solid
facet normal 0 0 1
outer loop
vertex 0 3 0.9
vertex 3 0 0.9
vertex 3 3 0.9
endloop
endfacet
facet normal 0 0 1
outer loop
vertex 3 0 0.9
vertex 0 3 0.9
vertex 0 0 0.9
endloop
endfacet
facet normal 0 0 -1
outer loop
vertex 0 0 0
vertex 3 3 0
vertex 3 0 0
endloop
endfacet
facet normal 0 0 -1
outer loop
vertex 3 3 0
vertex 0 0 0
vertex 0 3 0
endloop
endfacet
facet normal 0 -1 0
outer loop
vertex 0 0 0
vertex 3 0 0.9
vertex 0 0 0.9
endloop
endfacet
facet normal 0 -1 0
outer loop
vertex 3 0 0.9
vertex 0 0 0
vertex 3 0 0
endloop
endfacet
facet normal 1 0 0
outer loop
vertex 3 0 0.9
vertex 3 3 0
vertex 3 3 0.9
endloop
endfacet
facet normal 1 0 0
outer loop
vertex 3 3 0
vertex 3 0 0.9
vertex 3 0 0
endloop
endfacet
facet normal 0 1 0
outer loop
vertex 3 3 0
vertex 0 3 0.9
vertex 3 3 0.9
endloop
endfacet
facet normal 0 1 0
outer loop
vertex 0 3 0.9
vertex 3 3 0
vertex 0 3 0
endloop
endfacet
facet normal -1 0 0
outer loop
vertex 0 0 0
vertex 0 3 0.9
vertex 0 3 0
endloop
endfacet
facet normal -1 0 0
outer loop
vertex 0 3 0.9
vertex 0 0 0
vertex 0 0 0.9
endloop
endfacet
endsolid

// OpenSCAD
/* Warning, this is a very basic generator with a lot of approximation 
input data : [QFN, 2RX, 3x3x0.9mm, 16, , A, C04-00197A]
generated by com.zoubworld.electronics.cad.model3d.Basic
Date : Sun Feb 15 10:50:48 CET 2026
*/

//body
color("black")
translate([0,0,0])
cube([3.0,3.0,0.9], center=false);
